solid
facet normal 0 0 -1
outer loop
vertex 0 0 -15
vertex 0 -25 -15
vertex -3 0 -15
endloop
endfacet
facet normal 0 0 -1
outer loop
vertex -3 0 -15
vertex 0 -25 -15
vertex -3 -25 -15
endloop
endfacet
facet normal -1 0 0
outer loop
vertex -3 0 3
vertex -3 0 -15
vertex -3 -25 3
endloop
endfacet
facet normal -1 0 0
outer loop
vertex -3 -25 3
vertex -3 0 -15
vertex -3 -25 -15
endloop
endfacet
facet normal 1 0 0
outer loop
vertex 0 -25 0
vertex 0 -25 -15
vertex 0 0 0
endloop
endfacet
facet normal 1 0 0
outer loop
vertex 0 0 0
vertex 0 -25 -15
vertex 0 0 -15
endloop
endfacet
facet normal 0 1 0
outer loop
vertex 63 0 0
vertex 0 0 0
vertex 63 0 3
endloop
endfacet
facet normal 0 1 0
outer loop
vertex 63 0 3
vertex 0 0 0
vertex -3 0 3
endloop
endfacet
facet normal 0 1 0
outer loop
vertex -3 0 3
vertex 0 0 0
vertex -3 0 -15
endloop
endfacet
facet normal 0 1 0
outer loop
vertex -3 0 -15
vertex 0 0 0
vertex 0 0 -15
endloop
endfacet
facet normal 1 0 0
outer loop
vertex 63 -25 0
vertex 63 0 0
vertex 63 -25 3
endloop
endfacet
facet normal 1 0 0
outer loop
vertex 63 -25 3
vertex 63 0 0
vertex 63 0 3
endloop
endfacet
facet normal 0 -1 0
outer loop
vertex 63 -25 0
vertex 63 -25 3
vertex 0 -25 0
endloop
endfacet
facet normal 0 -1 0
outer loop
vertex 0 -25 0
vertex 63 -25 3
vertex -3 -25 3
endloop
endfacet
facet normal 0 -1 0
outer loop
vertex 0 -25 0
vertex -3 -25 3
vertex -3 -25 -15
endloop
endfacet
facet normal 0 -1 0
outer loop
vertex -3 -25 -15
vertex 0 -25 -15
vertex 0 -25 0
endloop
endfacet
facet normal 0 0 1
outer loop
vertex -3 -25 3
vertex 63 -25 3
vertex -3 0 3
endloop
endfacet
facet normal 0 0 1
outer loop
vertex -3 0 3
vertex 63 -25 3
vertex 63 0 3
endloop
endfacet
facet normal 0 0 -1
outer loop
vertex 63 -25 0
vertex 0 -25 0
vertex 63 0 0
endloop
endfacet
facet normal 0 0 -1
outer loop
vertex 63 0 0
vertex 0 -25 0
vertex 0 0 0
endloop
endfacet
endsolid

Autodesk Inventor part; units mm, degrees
ref_plane "YZ Plane" through (0, 0, 0) normal (1, 0, 0) x (0, 1, 0)
ref_plane "XZ Plane" through (0, 0, 0) normal (0, 1, 0) x (-1, 0, 0)
ref_plane "XY Plane" through (0, 0, 0) normal (0, 0, 1) x (1, 0, 0)
sketch "Sketch1" plane through (0, 0, 0) normal (0, 0, 1) x (1, 0, 0)
  line L0 (0, 0) -> (63, 0)
  line L1 (63, 0) -> (63, -25)
  line L2 (63, -25) -> (0, -25)
  line L3 (0, -25) -> (0, 0)
  dimension "d0" = 63
  dimension "d1" = 25
extrude "Extrusion1" add sketch "Sketch1" along normal blind 3
sketch "Sketch2" plane through (0, -25, 0) normal (-1, 0, 0) x (0, 0, 1)
  line L0 (3, 0) -> (3, 25) projected
  line L1 (3, 25) -> (-15, 25)
  line L2 (-15, 25) -> (-15, 0)
  line L3 (-15, 0) -> (3, 0)
  line L4 (3, 0) -> (3, 25)
  point P0 (0, 25)
  dimension "d4" = 18
extrude "Extrusion2" add sketch "Sketch2" along normal blind 3
properties part number "arduino array box v04 slot"
